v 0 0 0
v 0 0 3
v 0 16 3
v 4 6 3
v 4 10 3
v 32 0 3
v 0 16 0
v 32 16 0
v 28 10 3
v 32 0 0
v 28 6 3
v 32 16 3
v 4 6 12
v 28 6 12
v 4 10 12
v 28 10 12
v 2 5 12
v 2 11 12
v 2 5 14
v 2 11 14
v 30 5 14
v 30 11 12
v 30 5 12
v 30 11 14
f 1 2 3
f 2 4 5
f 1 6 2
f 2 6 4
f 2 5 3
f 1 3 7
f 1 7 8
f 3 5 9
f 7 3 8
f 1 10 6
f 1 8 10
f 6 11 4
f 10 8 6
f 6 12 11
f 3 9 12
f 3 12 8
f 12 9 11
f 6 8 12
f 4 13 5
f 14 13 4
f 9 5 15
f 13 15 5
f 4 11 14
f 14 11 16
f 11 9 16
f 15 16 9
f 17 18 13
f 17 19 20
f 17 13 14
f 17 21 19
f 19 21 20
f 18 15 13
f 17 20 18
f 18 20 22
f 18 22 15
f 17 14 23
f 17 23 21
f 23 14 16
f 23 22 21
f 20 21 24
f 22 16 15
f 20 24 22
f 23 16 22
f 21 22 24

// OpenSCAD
// snap-spoiler-01 — matches sets/base.json (32x16 mm footprint, flat).
// Prints flat, no supports: fin is laid in the print plane on purpose.
plate = [32, 16, 3];
cube(plate);
translate([4, 6, 3]) cube([24, 4, 10]);
translate([2, 5, 12]) cube([28, 6, 2]);
